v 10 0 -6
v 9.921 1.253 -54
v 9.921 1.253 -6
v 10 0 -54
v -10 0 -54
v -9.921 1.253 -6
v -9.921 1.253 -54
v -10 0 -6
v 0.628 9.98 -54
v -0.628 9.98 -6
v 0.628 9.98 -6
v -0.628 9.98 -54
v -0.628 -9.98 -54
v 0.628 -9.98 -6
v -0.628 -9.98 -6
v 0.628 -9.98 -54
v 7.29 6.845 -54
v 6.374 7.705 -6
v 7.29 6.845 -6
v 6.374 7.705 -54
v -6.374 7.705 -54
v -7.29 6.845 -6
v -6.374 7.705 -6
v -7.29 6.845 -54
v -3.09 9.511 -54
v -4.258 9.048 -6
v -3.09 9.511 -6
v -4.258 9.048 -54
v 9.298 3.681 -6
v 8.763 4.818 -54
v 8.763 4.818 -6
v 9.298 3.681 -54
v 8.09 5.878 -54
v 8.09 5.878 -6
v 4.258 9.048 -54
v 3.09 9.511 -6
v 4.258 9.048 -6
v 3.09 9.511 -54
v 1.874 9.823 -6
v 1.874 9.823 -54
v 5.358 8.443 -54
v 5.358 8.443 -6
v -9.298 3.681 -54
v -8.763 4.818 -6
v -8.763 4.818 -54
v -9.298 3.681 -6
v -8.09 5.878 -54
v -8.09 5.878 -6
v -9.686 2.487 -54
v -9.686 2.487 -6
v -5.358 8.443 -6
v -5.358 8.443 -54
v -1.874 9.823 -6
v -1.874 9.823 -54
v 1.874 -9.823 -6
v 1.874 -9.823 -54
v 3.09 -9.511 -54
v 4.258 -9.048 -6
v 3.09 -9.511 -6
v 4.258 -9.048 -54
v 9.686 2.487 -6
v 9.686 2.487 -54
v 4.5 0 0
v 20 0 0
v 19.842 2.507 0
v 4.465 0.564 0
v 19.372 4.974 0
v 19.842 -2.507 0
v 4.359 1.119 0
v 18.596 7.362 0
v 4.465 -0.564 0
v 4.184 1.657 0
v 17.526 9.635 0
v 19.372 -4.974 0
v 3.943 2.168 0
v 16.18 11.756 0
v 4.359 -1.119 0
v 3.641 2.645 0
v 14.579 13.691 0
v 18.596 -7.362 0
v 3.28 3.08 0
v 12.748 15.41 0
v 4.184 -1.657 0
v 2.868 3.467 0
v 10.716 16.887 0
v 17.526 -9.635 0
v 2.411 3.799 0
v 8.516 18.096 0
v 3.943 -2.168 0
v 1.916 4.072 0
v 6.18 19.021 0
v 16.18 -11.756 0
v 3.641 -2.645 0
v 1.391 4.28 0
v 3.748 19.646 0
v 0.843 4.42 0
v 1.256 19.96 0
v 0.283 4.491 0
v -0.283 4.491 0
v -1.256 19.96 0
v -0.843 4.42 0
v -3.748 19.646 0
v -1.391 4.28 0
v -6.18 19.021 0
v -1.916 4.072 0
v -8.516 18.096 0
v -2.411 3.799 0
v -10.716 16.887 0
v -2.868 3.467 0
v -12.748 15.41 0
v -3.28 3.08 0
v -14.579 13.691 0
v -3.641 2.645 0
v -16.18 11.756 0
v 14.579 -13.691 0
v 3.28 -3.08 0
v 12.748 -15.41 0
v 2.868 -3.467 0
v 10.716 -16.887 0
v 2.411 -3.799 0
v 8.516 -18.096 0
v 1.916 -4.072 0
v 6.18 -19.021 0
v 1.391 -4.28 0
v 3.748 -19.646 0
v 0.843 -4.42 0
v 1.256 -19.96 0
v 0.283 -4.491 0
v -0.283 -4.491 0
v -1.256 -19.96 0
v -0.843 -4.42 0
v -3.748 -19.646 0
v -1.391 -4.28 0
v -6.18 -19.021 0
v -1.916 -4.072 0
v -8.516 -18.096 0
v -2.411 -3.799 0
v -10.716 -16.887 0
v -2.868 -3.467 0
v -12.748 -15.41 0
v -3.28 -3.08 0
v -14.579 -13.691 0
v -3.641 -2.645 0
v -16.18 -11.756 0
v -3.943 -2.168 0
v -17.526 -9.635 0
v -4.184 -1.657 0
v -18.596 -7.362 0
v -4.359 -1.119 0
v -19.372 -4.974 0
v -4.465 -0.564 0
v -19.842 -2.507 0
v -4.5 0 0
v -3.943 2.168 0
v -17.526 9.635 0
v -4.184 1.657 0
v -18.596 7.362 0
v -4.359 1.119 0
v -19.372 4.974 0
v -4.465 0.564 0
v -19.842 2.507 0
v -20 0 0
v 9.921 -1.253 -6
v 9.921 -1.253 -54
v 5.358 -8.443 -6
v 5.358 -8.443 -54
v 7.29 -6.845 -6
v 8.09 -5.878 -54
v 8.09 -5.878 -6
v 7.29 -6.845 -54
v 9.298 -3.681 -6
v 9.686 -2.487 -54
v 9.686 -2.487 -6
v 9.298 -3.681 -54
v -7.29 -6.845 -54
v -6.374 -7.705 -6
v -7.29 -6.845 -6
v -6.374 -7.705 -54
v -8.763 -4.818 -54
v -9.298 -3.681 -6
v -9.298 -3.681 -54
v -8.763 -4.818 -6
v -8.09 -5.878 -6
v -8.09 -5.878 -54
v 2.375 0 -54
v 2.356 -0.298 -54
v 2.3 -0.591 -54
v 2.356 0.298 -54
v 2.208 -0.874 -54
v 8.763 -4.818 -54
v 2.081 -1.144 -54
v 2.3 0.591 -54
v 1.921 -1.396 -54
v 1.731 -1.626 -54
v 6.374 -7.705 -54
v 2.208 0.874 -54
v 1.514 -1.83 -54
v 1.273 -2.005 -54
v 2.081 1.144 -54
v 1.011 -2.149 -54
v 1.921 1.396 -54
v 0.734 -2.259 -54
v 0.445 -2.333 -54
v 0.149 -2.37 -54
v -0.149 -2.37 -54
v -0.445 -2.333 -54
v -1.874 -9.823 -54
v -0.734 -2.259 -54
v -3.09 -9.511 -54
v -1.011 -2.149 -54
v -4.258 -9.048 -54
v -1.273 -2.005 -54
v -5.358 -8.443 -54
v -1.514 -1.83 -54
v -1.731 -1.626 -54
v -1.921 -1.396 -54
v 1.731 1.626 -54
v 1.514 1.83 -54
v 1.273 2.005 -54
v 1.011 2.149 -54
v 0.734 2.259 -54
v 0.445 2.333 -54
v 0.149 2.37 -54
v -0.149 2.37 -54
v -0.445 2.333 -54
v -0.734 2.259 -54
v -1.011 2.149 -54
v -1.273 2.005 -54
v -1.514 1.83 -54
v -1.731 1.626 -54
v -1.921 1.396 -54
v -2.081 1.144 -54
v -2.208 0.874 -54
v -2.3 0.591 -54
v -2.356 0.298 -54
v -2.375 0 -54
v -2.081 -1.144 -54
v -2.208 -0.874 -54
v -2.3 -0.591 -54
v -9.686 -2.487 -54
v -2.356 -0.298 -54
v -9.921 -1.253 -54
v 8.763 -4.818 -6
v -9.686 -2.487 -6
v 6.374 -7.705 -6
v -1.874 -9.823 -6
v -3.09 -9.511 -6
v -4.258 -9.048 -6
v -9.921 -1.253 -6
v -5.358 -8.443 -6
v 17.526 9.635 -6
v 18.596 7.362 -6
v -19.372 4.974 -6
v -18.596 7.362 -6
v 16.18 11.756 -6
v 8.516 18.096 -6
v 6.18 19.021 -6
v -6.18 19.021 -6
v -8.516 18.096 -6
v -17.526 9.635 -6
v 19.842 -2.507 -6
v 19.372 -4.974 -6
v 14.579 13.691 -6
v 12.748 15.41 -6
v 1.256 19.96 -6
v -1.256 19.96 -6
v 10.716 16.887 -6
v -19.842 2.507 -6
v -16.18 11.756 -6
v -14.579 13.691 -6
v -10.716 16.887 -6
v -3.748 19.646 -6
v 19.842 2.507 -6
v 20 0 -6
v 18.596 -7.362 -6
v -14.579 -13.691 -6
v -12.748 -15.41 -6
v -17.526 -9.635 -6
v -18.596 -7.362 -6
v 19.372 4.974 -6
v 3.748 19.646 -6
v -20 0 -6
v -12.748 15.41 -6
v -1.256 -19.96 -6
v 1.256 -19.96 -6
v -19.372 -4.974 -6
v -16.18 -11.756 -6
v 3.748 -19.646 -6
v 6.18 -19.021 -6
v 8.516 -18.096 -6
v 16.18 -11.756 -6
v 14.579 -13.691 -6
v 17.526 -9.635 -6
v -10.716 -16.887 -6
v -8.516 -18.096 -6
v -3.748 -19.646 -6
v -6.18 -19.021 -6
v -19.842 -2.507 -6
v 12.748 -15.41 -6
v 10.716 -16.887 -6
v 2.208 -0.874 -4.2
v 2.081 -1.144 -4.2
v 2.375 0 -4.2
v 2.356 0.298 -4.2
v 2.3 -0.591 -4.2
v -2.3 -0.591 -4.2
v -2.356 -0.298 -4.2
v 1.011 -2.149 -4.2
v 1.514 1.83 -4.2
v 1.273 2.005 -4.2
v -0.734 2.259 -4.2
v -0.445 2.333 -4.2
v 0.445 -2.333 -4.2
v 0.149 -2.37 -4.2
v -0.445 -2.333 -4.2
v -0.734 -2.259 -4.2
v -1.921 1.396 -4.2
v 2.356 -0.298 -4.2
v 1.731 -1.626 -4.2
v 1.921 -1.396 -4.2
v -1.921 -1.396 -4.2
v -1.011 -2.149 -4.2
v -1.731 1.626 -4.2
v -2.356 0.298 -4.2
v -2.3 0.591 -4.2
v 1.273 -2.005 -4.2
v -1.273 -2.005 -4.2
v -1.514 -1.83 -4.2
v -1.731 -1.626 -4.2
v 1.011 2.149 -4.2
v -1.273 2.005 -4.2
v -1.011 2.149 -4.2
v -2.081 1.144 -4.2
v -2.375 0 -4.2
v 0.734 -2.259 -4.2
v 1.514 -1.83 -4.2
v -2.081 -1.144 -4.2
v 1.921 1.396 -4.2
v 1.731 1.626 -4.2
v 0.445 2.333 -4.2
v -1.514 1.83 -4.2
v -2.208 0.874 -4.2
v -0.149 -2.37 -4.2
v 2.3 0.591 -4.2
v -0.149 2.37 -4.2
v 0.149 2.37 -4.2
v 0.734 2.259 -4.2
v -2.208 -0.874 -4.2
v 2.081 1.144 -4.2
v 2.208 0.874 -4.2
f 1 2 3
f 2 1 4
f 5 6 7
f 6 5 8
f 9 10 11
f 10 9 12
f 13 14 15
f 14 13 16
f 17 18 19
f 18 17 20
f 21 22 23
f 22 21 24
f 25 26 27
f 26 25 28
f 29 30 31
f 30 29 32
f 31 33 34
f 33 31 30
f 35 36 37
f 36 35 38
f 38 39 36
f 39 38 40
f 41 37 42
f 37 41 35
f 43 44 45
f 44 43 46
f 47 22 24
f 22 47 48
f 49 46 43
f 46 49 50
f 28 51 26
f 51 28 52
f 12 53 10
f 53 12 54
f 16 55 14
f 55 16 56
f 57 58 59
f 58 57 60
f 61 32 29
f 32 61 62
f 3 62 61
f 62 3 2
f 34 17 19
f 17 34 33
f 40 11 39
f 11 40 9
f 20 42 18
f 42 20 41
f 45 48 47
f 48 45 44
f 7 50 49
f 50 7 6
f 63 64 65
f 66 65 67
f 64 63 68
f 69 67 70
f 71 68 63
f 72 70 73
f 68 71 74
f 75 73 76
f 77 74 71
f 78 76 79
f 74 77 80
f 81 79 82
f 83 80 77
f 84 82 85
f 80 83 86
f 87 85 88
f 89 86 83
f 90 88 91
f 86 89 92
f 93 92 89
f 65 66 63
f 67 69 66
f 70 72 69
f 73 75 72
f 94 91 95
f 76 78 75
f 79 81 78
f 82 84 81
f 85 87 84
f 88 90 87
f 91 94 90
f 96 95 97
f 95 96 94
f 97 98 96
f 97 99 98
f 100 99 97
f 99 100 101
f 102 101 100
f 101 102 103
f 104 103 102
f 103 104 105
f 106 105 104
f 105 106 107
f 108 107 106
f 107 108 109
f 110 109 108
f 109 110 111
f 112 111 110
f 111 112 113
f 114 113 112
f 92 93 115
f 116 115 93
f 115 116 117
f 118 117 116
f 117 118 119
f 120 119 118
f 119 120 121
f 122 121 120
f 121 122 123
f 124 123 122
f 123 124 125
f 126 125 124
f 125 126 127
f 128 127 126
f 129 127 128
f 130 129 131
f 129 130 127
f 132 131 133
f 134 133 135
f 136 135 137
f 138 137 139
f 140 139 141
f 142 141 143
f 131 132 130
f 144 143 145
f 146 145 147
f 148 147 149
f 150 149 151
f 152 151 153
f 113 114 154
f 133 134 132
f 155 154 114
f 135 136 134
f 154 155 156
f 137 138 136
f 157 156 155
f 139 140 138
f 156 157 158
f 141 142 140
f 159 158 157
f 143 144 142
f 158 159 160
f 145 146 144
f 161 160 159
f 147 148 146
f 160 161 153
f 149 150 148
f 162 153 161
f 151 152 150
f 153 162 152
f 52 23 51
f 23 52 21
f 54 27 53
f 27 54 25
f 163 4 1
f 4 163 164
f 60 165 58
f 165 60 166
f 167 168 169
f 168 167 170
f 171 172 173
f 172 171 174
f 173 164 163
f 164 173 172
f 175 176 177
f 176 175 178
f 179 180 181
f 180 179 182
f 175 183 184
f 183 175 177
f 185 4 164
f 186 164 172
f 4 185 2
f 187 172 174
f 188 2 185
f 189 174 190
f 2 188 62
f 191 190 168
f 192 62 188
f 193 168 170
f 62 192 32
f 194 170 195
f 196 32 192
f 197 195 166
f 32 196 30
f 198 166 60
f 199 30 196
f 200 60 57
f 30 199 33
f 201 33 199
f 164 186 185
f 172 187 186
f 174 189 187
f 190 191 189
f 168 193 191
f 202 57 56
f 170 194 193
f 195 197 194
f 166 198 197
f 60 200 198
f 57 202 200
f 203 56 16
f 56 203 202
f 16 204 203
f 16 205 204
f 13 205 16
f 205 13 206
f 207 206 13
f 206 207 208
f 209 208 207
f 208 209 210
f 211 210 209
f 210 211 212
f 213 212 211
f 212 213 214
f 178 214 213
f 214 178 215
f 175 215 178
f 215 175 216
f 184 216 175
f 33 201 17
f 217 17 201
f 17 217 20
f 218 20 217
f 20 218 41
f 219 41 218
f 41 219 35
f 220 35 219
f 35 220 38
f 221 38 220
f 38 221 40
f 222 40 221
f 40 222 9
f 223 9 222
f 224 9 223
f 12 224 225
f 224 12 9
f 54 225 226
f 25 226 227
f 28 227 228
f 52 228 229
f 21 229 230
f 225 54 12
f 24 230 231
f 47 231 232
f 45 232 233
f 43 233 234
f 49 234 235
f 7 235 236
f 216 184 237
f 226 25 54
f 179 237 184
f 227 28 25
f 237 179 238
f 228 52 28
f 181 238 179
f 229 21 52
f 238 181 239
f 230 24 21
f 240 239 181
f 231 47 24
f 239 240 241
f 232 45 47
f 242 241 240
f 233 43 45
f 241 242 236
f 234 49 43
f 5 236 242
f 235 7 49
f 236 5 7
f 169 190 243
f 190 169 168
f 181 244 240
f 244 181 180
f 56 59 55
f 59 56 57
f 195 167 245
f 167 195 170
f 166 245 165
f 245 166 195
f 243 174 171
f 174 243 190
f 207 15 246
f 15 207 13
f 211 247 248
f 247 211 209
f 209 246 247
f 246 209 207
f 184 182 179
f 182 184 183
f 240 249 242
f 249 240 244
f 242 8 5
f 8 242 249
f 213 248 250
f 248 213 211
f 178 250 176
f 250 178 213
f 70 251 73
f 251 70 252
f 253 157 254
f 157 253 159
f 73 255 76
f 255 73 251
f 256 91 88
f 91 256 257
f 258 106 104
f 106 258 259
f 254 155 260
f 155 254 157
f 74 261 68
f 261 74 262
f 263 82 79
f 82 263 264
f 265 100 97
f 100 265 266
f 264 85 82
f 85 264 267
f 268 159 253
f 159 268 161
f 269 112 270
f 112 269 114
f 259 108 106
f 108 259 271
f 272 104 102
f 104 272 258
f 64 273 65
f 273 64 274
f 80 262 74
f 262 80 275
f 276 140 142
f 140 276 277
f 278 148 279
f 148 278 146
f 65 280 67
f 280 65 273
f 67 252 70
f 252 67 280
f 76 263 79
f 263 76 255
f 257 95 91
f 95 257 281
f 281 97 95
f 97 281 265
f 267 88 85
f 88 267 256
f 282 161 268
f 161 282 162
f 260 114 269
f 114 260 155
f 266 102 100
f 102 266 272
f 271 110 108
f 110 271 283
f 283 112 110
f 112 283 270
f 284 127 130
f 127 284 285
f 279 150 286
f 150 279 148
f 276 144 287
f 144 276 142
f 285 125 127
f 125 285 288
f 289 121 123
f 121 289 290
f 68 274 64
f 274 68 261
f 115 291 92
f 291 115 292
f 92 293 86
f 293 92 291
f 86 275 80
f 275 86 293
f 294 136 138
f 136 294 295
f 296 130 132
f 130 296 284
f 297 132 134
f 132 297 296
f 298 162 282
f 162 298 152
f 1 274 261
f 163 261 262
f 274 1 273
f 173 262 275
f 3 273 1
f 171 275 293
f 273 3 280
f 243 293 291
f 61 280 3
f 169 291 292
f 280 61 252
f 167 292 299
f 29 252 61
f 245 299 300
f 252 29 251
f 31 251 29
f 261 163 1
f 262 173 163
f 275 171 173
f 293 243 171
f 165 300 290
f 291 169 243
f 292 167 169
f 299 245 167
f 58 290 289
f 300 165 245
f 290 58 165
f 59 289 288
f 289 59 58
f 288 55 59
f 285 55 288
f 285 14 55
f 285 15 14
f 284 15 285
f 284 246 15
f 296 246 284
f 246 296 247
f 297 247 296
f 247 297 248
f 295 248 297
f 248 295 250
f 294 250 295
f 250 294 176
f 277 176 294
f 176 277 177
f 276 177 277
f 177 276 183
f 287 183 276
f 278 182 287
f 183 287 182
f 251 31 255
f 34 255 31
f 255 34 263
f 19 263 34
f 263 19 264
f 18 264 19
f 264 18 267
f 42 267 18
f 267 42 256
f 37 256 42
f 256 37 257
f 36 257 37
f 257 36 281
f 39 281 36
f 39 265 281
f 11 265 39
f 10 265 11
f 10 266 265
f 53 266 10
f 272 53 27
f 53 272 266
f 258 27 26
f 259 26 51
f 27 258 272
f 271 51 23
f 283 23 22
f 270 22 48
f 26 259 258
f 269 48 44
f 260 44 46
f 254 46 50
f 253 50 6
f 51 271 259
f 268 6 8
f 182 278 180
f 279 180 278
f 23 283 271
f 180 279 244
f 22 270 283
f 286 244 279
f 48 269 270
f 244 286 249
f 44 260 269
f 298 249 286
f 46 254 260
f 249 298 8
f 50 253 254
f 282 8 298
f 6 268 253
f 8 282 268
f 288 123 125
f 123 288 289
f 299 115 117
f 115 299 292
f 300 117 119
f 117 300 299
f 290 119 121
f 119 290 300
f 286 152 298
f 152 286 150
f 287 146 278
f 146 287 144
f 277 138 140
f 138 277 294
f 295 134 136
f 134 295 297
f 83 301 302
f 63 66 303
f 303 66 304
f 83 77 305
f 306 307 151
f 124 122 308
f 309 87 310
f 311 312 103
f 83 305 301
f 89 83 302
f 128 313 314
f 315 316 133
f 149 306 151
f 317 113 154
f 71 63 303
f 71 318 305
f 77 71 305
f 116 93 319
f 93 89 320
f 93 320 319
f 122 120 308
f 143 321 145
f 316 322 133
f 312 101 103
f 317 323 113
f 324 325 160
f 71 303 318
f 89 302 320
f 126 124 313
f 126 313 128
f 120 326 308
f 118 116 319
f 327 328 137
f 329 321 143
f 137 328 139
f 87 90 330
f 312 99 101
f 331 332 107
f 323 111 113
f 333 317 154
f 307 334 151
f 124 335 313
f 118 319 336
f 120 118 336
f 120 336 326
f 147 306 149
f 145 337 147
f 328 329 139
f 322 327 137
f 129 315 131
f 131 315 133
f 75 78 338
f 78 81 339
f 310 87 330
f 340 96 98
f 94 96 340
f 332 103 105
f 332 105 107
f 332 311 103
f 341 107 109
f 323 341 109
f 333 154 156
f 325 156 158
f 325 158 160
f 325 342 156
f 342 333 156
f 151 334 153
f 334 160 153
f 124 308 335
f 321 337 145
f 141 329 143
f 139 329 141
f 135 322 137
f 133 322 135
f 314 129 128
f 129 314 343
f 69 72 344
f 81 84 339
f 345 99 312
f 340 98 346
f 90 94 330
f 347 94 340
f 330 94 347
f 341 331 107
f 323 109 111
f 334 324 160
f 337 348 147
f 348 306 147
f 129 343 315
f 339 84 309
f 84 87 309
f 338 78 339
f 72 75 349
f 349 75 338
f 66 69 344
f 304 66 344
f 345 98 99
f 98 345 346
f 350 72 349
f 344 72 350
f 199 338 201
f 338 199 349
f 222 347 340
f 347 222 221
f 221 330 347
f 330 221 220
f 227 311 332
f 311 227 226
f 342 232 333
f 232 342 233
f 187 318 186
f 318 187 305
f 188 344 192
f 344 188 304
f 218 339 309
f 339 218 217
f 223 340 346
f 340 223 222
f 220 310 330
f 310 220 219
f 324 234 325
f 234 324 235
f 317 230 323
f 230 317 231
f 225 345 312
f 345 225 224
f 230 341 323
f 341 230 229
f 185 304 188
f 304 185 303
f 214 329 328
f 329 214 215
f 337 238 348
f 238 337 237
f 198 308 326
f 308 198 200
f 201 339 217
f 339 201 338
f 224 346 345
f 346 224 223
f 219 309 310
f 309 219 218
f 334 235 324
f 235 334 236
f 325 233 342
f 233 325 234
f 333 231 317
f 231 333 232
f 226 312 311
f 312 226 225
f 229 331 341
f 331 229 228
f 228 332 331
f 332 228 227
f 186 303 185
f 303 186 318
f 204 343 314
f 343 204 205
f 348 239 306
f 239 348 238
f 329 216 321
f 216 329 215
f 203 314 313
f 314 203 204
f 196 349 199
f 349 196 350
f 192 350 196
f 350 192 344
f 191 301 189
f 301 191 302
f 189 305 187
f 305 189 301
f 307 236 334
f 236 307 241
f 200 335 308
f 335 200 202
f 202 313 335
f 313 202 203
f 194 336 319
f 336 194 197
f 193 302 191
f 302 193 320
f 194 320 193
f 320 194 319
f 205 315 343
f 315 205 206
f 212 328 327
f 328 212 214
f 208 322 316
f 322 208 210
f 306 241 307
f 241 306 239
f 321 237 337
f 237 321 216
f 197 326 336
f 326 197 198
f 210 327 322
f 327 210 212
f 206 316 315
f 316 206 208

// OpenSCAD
$fn = 50;


difference() {
	union() {
		translate(v = [0, 0, -54.0000000000]) {
			cylinder(h = 54, r = 10.0000000000);
		}
		translate(v = [0, 0, -6.0000000000]) {
			cylinder(h = 6, r = 20.0000000000);
		}
	}
	union() {
		translate(v = [0, 0, 0]) {
			rotate(a = [0, 0, 0]) {
				difference() {
					union() {
						#translate(v = [0, 0, -54.0000000000]) {
							cylinder(h = 54, r = 2.2500000000);
						}
						#translate(v = [0, 0, -4.2000000000]) {
							cylinder(h = 4.2000000000, r1 = 2.3750000000, r2 = 4.5000000000);
						}
						#translate(v = [0, 0, -54.0000000000]) {
							cylinder(h = 54, r = 2.3750000000);
						}
						#translate(v = [0, 0, -54.0000000000]) {
							cylinder(h = 54, r = 2.2500000000);
						}
					}
					union();
				}
			}
		}
	}
}
